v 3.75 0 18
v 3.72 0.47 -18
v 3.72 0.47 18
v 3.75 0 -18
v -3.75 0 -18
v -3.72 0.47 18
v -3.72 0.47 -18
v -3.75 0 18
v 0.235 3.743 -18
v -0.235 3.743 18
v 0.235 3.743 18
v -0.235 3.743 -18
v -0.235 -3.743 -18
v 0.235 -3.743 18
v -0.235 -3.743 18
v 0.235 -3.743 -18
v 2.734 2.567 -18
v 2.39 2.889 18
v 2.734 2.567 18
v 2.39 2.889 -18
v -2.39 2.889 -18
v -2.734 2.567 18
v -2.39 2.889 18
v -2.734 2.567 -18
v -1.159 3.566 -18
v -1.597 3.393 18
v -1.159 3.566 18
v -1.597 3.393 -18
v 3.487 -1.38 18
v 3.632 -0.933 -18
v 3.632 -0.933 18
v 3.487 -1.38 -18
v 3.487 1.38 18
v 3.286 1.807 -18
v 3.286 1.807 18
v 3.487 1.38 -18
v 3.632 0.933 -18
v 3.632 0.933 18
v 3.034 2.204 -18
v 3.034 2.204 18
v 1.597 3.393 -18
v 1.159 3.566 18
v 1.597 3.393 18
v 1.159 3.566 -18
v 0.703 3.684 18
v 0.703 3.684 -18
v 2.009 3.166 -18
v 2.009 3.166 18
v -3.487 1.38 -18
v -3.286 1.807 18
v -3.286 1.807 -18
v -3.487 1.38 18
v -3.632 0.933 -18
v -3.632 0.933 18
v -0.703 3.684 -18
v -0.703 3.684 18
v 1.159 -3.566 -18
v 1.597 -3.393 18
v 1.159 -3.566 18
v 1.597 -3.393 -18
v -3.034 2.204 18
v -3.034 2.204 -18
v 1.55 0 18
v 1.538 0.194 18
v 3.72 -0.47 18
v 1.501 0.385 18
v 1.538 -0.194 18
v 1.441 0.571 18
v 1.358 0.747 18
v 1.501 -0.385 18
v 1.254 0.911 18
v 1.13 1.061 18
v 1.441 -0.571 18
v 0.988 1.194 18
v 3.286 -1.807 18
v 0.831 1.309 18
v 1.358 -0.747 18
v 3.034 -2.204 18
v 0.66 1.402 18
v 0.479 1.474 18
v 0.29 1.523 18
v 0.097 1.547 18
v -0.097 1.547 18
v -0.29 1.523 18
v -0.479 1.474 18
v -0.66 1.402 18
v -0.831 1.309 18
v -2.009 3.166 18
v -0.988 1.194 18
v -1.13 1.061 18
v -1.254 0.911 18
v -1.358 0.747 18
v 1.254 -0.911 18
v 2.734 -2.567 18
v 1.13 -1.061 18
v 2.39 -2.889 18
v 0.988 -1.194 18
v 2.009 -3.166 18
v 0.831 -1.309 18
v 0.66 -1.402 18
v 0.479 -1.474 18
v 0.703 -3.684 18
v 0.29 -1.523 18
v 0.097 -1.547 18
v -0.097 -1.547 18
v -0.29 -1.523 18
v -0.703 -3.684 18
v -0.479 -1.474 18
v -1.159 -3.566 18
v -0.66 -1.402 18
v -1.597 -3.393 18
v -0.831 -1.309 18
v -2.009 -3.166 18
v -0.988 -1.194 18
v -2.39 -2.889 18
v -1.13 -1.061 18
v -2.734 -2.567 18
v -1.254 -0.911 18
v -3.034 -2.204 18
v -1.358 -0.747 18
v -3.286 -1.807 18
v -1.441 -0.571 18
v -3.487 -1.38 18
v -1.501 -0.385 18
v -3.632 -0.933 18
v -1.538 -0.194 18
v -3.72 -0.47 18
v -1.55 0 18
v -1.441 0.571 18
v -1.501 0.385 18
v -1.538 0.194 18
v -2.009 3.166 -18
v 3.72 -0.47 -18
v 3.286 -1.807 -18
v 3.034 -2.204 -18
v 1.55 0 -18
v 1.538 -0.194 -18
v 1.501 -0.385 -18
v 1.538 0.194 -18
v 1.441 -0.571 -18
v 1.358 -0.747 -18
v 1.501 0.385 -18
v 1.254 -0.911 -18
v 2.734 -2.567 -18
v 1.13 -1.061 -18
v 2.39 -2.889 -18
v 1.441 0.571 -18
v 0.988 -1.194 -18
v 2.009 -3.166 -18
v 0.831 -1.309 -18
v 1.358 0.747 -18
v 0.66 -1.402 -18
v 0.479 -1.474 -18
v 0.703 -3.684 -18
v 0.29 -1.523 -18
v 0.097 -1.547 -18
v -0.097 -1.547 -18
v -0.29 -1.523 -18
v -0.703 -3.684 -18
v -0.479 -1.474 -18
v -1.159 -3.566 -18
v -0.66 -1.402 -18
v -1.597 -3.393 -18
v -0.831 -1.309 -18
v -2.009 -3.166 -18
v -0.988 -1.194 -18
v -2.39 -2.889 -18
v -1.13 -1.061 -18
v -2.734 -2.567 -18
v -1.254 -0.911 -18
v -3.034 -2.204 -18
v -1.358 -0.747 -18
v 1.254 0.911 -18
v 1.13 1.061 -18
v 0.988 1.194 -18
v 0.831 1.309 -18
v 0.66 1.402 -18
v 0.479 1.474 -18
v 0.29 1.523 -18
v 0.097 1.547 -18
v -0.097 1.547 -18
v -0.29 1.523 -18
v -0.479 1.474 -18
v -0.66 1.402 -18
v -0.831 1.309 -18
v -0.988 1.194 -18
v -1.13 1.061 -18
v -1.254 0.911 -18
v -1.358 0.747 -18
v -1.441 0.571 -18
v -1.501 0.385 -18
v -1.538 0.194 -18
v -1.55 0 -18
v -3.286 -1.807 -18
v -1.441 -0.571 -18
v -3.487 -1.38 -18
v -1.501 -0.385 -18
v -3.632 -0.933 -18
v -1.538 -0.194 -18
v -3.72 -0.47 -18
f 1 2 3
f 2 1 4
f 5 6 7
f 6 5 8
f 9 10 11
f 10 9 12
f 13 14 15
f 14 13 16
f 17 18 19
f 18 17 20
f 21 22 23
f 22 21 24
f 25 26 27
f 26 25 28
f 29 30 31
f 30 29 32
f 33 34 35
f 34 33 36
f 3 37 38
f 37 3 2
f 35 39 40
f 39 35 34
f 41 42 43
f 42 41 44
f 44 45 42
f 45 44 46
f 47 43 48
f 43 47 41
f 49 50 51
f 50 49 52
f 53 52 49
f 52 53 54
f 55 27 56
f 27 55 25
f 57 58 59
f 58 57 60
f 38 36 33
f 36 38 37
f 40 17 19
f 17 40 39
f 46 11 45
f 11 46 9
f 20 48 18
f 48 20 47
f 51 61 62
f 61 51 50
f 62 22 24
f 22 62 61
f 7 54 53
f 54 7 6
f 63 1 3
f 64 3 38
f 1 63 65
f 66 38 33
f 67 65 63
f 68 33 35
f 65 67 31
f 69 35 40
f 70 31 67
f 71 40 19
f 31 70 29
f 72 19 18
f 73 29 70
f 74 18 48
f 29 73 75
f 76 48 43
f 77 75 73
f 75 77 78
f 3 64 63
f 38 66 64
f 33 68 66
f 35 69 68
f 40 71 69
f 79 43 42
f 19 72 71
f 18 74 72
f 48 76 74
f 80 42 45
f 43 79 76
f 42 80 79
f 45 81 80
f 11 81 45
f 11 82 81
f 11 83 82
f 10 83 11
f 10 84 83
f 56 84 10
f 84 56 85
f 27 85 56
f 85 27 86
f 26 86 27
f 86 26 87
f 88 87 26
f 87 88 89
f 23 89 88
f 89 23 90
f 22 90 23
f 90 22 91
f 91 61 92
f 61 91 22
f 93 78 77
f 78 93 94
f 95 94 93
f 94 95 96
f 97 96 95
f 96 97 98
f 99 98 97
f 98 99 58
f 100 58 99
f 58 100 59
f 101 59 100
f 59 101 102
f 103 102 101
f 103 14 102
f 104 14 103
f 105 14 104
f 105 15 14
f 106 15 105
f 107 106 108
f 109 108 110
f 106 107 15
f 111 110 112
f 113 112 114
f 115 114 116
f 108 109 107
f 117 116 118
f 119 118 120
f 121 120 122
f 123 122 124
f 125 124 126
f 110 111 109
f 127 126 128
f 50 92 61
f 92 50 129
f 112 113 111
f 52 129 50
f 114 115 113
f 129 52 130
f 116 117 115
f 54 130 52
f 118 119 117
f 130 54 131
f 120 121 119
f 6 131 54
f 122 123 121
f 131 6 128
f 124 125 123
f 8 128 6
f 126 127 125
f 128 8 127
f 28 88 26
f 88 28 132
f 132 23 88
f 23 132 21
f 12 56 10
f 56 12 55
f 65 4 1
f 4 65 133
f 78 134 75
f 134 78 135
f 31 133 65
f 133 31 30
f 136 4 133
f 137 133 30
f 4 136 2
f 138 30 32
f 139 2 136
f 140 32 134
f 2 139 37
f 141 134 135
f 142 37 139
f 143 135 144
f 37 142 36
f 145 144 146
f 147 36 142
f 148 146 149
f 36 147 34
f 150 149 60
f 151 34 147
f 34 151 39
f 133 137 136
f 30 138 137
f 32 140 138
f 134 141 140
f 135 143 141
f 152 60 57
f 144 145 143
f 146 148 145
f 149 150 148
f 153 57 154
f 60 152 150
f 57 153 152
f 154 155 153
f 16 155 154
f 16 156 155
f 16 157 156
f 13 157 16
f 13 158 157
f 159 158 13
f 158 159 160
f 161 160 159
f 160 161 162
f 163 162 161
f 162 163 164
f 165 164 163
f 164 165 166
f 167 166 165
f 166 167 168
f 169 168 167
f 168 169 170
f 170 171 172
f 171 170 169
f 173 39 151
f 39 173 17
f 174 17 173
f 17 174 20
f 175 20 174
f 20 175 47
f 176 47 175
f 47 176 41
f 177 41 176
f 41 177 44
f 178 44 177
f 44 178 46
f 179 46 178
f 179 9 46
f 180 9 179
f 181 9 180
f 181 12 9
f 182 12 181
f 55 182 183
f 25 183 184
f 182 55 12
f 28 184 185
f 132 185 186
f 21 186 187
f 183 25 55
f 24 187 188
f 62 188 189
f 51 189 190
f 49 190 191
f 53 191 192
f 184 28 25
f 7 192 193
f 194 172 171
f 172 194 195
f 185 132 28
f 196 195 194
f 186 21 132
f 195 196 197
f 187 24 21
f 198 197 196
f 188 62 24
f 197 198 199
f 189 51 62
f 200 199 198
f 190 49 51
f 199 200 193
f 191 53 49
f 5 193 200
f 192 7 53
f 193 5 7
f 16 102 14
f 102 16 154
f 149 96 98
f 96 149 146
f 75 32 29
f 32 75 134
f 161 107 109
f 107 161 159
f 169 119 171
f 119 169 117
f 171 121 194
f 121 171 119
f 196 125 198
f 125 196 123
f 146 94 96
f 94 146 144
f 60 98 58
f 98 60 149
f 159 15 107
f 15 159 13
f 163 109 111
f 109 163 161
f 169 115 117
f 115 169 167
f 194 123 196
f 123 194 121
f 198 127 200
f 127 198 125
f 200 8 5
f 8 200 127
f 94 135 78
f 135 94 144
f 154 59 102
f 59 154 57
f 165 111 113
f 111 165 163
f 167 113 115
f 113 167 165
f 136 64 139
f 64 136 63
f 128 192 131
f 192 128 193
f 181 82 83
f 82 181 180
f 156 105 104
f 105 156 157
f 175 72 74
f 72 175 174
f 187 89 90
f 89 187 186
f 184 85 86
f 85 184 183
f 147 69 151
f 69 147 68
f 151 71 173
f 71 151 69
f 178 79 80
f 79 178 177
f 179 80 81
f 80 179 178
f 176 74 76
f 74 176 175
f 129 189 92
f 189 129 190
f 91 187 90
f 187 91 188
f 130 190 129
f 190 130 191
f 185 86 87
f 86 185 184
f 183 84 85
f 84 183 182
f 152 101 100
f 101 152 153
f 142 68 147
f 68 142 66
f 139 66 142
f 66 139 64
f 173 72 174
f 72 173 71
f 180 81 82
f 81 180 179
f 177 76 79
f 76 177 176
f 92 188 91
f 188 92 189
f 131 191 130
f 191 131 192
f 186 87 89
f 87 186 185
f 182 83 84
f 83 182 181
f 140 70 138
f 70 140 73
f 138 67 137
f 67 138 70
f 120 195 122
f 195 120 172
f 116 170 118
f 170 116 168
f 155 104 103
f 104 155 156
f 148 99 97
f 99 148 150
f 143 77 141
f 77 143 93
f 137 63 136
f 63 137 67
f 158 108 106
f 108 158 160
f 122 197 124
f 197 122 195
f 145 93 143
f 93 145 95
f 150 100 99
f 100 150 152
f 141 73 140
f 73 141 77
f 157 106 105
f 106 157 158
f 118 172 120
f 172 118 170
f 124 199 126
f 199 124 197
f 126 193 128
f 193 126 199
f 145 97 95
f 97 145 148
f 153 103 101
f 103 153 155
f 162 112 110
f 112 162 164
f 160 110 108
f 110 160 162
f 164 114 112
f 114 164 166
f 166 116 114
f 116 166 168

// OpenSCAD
$fn = 50;


difference() {
	union() {
		translate(v = [0, 0, -18.0000000000]) {
			cylinder(h = 36, r = 3.7500000000);
		}
	}
	union() {
		translate(v = [0, 0, -100.0000000000]) {
			cylinder(h = 200, r = 1.5500000000);
		}
	}
}
